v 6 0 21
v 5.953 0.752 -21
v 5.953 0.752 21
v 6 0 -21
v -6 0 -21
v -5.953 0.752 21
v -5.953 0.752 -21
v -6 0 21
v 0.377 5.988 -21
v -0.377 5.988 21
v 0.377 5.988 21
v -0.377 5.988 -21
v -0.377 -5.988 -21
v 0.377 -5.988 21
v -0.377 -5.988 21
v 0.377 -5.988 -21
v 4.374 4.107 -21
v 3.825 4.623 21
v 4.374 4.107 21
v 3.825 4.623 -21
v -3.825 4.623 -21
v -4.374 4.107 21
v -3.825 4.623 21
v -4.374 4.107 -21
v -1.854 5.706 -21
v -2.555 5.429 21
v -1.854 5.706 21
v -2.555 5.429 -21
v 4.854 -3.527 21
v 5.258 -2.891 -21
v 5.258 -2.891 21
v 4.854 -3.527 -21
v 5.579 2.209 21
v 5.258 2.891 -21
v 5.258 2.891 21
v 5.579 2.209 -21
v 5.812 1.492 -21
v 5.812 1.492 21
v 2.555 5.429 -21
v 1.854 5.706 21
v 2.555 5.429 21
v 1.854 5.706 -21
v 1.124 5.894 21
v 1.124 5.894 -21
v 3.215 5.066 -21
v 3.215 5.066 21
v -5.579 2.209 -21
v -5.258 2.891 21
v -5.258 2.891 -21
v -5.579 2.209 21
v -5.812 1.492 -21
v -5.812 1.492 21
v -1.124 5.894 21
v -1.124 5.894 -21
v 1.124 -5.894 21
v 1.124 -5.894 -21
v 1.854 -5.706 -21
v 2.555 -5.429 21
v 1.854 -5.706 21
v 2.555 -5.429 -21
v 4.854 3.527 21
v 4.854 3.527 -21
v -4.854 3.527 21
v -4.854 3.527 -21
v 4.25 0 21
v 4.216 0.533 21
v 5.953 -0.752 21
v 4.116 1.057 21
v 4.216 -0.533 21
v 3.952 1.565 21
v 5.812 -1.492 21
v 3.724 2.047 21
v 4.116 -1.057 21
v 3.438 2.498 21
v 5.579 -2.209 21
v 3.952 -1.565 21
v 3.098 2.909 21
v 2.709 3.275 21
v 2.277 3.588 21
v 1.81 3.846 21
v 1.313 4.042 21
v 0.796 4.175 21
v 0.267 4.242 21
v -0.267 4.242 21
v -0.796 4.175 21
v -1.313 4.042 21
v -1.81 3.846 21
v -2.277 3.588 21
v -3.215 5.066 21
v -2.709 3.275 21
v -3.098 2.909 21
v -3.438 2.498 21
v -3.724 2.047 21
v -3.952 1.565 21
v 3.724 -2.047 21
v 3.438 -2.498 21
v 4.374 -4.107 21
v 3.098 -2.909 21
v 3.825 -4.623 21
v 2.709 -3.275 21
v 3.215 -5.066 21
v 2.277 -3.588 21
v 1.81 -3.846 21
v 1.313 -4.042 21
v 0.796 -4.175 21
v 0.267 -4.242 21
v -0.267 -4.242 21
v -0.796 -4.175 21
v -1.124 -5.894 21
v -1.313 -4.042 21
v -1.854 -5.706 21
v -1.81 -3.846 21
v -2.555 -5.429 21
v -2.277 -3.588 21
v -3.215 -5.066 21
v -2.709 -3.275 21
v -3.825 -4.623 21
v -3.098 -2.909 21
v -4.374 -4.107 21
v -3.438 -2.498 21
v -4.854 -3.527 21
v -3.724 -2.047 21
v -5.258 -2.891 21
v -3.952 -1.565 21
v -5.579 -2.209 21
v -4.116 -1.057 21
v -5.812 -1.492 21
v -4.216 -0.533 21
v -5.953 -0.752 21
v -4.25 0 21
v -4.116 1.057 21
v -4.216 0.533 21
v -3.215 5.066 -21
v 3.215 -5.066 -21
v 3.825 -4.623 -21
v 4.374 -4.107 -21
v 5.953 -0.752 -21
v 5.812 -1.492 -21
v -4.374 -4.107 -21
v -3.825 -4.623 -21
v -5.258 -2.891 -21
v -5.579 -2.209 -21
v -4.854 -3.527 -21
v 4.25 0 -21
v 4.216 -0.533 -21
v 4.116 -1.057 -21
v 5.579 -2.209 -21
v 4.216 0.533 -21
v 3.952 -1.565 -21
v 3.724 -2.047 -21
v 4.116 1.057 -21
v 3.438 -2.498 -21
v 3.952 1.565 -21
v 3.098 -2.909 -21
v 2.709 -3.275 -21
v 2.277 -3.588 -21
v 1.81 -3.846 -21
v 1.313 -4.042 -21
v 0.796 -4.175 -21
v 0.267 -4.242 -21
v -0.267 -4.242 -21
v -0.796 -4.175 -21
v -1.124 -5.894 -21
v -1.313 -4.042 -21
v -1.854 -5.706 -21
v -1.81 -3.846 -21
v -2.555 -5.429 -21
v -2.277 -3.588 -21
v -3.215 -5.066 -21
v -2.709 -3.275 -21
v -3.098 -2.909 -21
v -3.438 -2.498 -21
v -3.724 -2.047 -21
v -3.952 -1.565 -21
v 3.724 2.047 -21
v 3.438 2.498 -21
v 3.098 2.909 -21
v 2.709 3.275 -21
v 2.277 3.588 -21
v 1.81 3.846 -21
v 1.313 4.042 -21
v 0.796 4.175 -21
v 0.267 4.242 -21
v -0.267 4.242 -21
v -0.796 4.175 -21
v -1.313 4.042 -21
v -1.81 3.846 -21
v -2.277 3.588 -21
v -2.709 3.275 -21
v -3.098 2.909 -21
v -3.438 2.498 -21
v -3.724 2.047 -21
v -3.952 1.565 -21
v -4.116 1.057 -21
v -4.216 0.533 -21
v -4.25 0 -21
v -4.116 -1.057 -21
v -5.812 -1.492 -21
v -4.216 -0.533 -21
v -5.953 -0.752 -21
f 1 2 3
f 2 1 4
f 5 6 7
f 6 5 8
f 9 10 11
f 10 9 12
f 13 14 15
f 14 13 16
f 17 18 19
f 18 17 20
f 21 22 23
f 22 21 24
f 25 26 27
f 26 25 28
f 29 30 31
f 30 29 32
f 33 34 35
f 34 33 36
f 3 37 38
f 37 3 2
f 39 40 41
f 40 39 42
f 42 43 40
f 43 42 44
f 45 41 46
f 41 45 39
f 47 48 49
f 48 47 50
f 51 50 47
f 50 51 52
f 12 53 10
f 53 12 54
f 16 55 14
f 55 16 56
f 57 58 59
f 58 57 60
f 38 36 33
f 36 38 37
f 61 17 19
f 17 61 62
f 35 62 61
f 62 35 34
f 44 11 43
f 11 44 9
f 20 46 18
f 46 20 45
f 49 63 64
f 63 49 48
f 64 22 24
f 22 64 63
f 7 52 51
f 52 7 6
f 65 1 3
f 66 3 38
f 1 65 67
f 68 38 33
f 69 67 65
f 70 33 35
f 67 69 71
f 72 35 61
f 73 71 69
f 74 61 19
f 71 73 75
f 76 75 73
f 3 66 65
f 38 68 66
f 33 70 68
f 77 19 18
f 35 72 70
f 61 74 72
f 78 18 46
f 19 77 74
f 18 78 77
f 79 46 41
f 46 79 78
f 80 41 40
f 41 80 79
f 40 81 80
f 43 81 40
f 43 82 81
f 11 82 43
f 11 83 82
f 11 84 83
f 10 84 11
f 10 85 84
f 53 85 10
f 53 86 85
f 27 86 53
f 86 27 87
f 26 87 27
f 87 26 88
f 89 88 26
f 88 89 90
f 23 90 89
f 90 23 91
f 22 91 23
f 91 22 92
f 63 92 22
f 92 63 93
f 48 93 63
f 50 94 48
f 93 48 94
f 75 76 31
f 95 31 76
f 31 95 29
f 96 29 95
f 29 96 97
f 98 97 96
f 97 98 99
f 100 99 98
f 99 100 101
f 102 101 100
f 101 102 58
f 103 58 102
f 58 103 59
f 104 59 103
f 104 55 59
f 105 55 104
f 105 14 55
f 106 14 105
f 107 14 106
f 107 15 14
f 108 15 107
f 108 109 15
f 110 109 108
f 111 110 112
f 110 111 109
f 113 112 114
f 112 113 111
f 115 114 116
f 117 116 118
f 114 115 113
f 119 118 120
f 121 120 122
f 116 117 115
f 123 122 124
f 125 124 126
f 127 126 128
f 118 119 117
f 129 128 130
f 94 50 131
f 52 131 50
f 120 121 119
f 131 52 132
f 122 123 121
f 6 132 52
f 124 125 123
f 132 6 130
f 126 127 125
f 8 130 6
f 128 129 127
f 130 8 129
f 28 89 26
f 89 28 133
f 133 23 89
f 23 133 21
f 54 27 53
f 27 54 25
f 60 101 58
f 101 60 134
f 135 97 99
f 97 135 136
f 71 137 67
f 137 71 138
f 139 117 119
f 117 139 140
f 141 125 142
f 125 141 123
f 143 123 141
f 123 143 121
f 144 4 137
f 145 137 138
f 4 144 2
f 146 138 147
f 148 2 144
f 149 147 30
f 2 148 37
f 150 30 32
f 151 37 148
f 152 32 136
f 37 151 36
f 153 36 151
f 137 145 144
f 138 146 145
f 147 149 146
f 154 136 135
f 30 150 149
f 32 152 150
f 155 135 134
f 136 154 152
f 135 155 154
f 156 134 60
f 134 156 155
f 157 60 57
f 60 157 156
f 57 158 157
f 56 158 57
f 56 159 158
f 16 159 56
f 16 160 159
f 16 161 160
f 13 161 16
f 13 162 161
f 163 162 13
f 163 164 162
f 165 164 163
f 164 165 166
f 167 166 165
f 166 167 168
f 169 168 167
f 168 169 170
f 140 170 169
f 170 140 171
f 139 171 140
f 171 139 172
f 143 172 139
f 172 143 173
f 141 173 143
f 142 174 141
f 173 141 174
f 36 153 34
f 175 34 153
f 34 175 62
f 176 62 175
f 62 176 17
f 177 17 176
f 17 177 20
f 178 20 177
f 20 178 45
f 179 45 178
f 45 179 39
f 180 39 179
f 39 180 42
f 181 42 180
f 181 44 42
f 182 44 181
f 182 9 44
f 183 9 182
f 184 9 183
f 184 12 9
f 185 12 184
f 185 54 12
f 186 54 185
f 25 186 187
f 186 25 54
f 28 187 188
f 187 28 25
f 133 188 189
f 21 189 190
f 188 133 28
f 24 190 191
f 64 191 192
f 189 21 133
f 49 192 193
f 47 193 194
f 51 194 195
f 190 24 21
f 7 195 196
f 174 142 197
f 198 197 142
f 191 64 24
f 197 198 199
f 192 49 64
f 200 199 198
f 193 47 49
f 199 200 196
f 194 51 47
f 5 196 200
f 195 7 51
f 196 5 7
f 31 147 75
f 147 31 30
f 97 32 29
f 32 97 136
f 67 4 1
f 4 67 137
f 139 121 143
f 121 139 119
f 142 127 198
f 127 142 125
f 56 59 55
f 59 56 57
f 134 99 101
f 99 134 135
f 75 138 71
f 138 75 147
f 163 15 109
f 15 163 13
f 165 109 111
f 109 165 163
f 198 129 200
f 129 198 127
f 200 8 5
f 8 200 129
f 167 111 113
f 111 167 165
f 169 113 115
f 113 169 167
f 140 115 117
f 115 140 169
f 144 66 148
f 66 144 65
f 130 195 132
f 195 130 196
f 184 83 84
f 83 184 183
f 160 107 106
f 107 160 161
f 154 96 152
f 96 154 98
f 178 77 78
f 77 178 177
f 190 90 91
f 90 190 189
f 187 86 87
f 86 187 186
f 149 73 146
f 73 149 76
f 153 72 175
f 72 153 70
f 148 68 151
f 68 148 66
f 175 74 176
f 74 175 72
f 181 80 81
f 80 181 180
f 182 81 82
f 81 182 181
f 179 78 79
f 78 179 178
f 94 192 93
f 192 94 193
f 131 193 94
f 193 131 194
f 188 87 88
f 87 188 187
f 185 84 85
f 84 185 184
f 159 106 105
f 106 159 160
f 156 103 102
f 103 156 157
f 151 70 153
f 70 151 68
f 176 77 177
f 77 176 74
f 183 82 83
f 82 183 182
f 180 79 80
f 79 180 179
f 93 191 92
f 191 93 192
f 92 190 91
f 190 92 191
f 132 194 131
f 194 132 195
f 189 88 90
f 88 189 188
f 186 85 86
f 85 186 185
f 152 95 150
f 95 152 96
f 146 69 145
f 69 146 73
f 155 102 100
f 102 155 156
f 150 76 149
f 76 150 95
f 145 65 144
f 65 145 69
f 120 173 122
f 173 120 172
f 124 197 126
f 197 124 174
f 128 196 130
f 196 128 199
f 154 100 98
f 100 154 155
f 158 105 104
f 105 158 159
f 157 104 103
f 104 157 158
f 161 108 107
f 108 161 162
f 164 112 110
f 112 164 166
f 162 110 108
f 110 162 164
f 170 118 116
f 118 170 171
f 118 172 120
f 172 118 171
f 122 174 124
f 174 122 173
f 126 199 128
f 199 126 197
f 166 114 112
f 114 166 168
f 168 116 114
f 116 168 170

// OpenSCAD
$fn = 50;


difference() {
	union() {
		translate(v = [0, 0, -21.0000000000]) {
			cylinder(h = 42, r = 6.0000000000);
		}
	}
	union() {
		translate(v = [0, 0, -100.0000000000]) {
			cylinder(h = 200, r = 4.2500000000);
		}
	}
}
